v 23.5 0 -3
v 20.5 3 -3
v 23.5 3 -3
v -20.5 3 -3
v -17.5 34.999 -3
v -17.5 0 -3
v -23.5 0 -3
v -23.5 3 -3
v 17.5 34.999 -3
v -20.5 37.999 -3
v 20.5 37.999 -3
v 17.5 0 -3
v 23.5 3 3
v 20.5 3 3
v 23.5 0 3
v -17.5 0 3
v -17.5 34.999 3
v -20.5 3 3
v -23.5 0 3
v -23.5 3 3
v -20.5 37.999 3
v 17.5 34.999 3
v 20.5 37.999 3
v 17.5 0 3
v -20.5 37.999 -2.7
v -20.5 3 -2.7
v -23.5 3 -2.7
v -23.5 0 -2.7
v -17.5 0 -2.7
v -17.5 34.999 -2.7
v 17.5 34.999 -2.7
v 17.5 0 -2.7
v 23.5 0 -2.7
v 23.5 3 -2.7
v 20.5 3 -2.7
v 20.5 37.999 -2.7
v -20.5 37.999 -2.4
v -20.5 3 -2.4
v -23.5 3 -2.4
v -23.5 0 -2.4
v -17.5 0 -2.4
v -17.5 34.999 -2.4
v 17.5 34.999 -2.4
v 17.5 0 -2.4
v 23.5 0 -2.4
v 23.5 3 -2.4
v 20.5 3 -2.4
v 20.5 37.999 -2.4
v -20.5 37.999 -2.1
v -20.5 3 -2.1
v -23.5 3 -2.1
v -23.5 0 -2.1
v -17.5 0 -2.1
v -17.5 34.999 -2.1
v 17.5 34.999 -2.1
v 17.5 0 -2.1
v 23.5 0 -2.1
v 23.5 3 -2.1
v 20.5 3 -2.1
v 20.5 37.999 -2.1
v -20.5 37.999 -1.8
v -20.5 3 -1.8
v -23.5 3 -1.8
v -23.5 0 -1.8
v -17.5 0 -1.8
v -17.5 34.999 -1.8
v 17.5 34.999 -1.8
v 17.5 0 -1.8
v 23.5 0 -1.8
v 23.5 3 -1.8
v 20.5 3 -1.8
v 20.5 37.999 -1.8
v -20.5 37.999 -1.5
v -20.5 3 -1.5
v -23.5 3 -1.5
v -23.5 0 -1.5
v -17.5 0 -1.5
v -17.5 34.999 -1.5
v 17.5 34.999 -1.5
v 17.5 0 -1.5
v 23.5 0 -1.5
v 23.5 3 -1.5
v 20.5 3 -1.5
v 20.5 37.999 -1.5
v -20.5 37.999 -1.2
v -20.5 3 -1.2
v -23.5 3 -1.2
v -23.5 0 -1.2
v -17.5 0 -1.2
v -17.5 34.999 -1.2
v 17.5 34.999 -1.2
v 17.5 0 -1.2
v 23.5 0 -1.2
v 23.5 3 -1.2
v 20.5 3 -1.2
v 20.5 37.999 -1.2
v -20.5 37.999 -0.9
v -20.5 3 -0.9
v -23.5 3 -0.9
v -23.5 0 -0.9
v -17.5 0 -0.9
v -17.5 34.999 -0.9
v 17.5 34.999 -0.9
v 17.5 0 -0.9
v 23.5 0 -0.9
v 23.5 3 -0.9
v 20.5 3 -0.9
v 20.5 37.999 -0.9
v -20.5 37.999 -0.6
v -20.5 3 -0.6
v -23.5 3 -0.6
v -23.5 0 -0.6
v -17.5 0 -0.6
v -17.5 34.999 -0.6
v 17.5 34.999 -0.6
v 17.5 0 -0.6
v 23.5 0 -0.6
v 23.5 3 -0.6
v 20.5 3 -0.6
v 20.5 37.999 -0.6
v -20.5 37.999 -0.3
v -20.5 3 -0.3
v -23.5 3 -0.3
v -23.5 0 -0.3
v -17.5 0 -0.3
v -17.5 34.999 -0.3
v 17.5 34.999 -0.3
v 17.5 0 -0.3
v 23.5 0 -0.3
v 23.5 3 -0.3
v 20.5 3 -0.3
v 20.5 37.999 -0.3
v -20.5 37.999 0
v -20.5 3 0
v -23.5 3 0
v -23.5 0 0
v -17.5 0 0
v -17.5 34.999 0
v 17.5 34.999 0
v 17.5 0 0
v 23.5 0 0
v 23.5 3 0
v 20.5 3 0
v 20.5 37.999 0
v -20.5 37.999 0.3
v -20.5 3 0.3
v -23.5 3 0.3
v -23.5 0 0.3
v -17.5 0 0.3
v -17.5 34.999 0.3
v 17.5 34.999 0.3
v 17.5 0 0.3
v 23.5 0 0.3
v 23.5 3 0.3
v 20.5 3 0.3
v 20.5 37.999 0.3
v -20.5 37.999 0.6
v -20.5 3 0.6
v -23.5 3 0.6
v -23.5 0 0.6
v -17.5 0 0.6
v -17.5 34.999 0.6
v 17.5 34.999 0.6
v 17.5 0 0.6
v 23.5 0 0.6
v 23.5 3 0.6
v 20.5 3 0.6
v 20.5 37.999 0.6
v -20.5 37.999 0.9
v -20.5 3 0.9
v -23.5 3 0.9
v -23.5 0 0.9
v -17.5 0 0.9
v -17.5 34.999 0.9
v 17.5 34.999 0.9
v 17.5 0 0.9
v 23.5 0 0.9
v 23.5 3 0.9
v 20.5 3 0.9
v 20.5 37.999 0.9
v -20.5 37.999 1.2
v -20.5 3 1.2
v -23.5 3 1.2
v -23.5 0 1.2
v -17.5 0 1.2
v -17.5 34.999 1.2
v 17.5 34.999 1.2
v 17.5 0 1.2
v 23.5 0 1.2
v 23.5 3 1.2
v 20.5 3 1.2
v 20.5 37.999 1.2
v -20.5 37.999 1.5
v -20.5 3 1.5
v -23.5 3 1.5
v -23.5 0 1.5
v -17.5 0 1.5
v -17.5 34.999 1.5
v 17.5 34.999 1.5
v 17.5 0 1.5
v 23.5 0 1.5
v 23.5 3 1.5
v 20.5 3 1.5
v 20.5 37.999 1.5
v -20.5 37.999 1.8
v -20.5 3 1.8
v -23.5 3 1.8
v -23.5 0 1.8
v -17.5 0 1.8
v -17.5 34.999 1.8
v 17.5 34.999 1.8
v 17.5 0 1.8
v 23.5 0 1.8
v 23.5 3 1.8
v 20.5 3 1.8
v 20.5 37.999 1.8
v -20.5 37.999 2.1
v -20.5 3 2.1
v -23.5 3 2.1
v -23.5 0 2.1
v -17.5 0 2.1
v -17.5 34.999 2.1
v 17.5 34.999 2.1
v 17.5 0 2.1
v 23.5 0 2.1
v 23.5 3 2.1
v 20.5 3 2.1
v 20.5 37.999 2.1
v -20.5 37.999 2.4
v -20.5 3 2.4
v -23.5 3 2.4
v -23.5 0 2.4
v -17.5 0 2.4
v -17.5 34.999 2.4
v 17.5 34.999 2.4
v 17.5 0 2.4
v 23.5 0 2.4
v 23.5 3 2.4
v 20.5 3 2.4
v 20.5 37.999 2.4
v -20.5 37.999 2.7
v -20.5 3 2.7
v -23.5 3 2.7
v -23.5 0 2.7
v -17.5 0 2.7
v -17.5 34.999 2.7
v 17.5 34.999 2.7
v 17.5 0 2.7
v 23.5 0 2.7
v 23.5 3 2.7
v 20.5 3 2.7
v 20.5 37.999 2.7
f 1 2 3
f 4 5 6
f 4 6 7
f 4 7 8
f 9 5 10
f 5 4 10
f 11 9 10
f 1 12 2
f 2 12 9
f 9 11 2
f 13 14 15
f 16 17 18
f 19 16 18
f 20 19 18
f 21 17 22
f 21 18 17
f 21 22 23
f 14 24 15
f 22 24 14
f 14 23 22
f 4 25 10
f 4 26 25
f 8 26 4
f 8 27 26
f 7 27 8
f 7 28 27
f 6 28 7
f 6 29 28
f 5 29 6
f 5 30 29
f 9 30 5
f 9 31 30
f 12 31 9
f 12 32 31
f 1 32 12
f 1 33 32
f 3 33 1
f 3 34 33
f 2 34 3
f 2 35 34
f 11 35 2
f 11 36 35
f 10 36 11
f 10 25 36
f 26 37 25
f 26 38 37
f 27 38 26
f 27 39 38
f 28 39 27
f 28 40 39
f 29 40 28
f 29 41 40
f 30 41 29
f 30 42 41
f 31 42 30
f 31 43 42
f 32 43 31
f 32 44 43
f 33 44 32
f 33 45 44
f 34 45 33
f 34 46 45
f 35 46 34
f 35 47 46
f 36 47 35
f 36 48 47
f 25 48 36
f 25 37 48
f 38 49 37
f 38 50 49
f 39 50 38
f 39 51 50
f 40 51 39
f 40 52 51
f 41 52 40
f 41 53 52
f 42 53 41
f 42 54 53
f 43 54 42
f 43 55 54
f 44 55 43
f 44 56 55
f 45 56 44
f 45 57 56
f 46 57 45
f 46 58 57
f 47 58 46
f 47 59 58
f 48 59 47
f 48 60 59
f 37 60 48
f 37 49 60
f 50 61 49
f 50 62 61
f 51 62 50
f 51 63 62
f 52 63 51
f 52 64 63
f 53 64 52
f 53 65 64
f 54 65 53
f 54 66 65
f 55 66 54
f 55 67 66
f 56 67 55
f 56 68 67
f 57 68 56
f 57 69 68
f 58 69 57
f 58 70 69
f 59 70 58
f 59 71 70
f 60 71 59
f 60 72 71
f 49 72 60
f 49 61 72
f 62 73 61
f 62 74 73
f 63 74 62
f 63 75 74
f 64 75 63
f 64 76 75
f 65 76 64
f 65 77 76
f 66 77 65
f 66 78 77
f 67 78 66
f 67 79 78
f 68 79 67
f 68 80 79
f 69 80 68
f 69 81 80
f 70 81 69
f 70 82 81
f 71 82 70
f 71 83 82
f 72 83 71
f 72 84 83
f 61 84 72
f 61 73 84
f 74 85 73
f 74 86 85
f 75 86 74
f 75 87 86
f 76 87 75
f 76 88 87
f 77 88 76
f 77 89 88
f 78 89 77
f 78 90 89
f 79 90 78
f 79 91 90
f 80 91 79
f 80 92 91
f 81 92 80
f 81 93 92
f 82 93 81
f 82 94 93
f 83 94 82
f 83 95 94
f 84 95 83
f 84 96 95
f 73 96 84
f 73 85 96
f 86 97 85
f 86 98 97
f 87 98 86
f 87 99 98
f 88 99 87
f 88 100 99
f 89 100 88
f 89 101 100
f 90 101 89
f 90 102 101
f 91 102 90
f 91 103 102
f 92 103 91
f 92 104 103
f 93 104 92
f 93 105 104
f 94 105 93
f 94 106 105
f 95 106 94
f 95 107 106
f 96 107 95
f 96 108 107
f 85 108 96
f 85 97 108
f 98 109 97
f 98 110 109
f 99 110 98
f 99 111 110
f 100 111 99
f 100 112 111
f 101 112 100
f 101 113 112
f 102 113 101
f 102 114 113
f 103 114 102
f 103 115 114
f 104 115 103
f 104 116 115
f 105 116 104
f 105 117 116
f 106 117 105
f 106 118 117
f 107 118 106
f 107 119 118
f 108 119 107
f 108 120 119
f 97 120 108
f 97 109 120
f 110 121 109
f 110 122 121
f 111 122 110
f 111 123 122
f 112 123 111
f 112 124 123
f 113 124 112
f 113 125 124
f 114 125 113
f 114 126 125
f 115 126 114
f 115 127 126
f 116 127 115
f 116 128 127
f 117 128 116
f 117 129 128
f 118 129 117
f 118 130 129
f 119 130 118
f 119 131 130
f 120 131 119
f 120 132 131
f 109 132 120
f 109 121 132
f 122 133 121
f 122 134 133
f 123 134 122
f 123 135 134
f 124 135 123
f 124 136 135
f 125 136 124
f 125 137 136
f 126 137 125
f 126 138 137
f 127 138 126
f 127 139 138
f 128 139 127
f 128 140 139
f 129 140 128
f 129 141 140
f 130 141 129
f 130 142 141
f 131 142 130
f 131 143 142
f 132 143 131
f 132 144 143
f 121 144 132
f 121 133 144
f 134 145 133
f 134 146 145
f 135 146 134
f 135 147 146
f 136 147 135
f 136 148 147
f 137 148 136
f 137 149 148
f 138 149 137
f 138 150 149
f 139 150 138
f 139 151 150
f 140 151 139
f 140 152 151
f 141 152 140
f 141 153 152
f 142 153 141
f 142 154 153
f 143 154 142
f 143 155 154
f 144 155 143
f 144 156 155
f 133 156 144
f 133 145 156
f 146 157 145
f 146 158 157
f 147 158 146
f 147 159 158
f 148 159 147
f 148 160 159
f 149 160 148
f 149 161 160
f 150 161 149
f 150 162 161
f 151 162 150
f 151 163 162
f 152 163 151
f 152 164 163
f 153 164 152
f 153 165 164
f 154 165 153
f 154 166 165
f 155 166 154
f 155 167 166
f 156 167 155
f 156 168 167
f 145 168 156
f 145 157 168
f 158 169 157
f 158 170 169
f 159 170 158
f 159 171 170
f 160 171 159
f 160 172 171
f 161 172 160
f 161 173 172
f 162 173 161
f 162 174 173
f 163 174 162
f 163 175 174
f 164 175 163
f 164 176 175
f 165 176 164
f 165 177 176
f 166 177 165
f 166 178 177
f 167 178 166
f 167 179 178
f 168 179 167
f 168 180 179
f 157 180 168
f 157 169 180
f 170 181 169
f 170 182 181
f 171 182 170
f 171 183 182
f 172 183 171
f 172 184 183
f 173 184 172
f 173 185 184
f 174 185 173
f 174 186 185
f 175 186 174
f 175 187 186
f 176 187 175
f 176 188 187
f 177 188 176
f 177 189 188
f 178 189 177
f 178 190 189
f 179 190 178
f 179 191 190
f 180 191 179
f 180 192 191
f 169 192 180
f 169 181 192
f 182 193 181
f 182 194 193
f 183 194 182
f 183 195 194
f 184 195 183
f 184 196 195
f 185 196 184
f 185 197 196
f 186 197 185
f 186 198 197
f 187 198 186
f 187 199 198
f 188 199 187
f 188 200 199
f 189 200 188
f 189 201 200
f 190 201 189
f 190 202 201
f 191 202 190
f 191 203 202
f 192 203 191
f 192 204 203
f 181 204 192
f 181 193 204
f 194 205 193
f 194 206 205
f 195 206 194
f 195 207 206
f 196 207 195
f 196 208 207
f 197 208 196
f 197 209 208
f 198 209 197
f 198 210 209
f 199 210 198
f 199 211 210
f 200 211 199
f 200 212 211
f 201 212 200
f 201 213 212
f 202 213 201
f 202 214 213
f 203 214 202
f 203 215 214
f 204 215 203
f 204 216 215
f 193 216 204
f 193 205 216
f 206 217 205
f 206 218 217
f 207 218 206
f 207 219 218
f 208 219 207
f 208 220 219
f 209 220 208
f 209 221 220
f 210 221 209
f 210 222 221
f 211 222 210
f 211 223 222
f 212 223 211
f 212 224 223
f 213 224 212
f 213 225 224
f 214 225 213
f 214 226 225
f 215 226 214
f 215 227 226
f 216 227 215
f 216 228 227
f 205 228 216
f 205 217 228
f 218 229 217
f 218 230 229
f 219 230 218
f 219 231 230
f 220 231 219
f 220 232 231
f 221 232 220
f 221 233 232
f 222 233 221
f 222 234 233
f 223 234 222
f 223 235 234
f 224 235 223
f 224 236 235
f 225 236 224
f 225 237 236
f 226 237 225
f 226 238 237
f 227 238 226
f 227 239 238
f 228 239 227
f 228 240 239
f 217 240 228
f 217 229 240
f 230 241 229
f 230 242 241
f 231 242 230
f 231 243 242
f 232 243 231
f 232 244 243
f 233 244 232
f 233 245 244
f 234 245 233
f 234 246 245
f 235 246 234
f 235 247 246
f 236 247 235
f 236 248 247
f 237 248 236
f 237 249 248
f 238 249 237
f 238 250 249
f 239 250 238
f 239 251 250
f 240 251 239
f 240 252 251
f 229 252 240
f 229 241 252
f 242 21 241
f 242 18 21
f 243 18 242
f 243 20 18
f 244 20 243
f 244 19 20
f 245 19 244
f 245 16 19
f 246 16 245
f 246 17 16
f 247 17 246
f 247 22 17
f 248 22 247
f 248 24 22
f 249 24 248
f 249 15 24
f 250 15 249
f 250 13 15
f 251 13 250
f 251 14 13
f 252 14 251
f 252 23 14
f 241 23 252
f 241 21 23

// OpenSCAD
// file: calcs.scad
include <inputs.scad>

// CALCS (everything ends up in [mm])
robot_height = robot_height_in*cu-height_edge*cu*2; // height of the robot
robot_width = robot_width_in*cu-side_edge*cu*2; // width of the robot

base_bottom = base_clearance*cu; // height of the bottom of the base
base_top = base_bottom + base_thickness; // height of the top of the base

storage_size = storage_width*cu; // inside depth of storage area
storage_height = robot_height-base_top; // height of storage container
wire_hole = wire_hole_in*cu; // diameter of hole for wires under storage area

dump_height = dump_height_in*cu; // height that platform edge will raise to dump

shaft_width = robot_width - 2*storage_size - 2*thickness; // inside width of elevator shaft


cut_size = (robot_height-dump_height-base_top)/2+tol; // size of vertical cut for sliding together

shift = shaft_width/2 + thickness/2; // how much the pieces need to be shifted to be put together


wheel_opening_width = wheel_d; // width of opening for wheels on sub base
wheel_opening_depth = wheel_w + wheel_opening_depth_tol; // width of opening for wheels on sub base

drive_height = max(mount_motor_hole_offset,wheel_d/2) + max(mount_motor_hole_offset-mount_motor_hole_offset,wheel_d/2); // height of wheel, motor, and mount

sbase_top_height = drive_height + sbase_thickness; // height of the top of the sub base


false_bottom_height = false_bottom_height_in*cu; // height of false bottom in front

false_opening_height = false_opening_height_in*cu; // height of hole for false bottom


cut_height = base_bottom + false_opening_height - base_thickness; // height at which cuts will meet

bottom_cut_height = cut_height - base_top + tol; // height of bottom cut

top_cut_height = robot_height - dump_height - cut_height + tol; // height of top cut

el_step_height = el_step_height_in*cu; // height of steppers for elevator

// Checking
if (shaft_width < storage_size)
{
    echo("<b>THE STORAGE AREAS WILL BE TOO NARROW!!!!!!!!!!!!!!!!!!!!!!!!!!");
    echo("THIS IS A PROBLEM!!!!!!!!!!!!!!!!!!!!!!!!!!");
    echo("Width: ", shaft_width/cu, "[in]");
}
else
{
    echo("<b>Storage width will be:", shaft_width/cu, "[in]</b>");
}

echo("<b>Corner Size:", (robot_width-shaft_width-2*thickness)/2/cu, "[in]</b>");

// error check for sbase and base
if (sbase_top_height >= base_bottom)
{
    echo("<b>SUB BASE TOO TALL!!!!!!!!!!!!!!!!!!!!!!!!!!</b>");
}
else
{
    echo("<b>Spacer height should be:", (base_bottom - sbase_top_height)/cu, "[in]</b>");
}


echo(shaft_width/cu);
echo(storage_size/cu);
// file: inputs.scad
$fn = 50;
cu = 25.4; // inch -> mm

// INPUTS
thickness = 2; // thickness of the acrylic [mm]
base_thickness = 5; // thickness of the base acrylic [mm]

side_edge = 0.25; // clearance for each side of the robot [in]
height_edge = 0.1; // clearance for top and bottom of the robot [in]

robot_height_in = 11; // overall height of the robot [in]
robot_width_in = 9; // overall width of the robot [in]

base_clearance = 2.65; // clearance of the base to ground [in]

storage_width = 2.65; // inside width of storage container [in]

block_width = 5; // width of jigsaw block [mm]

dump_height_in = 1.75; // height that platform edge will raise to dump [in]

tol = 0.001; // number used to fix rounding? [mm]


sbase_thickness = 0; // thickness of the sub base [mm]

wheel_opening_depth_tol = 5; // extra space for wheel depth [mm]

hole_dist_opposing = 33.98; // distance between middles of opposing mounting holes [mm]

hole_dist_adjacent = 6.36; // distance between middles of adjacent mounting holes [mm]

hole_diameter = 3.26; // diameter of mounting holes [mm]

hole_in_spacing = 5; // distance from edge to middle of first mount holes [mm]


servo_length = 41; // lenght of servo [mm]

servo_width = 21; // width of servo [mm]

servo_depth = 37; // height of servo to top plate [mm]

servo_mount_length = 7; // length of servo hole mount (one side) [mm]

servo_wire_clear_length = 12; // length wires protrude from side [mm]

servo_circle_d = 14.5; // diameter of circular protrusion around spline [mm]

servo_circle_offset = 10; // distance from one side to center of spline [mm]


stepper_depth = 40; // depth of stepper [mm]

stepper_lw = 42; // length/width of stepper [mm]

stepper_shaft_ext = 23; // extension of stepper shaft from face [mm]

s_shaft_d = 5; // stepper shaft diameter [mm]

mount_width = 50; // width of motor mount [mm]

mount_mount_hole_offset_w = 15; // distance from center to mount holes for motor mount [mm]

mount_mount_hole_offset_from_back = 11; // distance from back to first mount holes for motor mount [mm]

mount_mount_hole_differential = 30; // distance from first mount hole to second mount hole for motor mount [mm]

mount_mount_hole_d = 4.2; // diameter of mount mount hole[mm]

mount_motor_hole_offset = 31; // distance from top of mount to center of motor hole [mm]

mount_motor_hole_d = 22.1; // diameter of motor hole in mount [mm]

mount_length = 53.5; // length of motor mount [mm]

mount_depth = 51.5; // depth of motor mount [mm]

mount_thickness = 3; // thickness of metal for mount [mm]

wheel_d = 60; // diameter of wheel [mm]

wheel_w = 31; // width of wheel [mm]

wheel_out = 17; // how far out the shaft the wheel starts [mm]

wedge_tol = 1; // tolerance for edges of wedge [mm]

wedge_angle = 30; // angle of wedge from horizontal [deg]

wedge_thickness = 5; // thickness of wedge [mm]


wire_hole_in = 0.5; // size of hole for wires to motors

wire_tri_edge = 5; // thickness of edge on wiring triangle [mm]

false_bottom_height_in = 3; // height of false bottom in front [in]

bottom_clearance = 3; // clearance for walls on bottom of robot [mm]

false_opening_height_in = 3; // height of hole for false bottom [in]


el_step_height_in = 2; // height of steppers for elevator [in]

el_motor_size = 35; // length of elevator stepper motor [mm]

bracket_thickness = 3; // thickness of bracket for elevator stepper [mm]
// main file
include <inputs.scad>
include <calcs.scad>

module bracket()
{
    linear_extrude(height = 2*bracket_thickness, center = true, convexity = 0, twist = 0, slices = 20, scale = 1.0, $fn = 16)
    {
        // right
        translate(v = [el_motor_size/2, 0, 0])
            square(size = [bracket_thickness, el_motor_size], center = false);
        // left
        translate(v = [-el_motor_size/2-bracket_thickness, 0, 0])
            square(size = [bracket_thickness, el_motor_size], center = false);
        // top
        translate(v = [-el_motor_size/2-bracket_thickness, el_motor_size-tol, 0])
            square(size = [el_motor_size+ 2*bracket_thickness, bracket_thickness], center = false);
        
        // feet
        translate(v = [-el_motor_size/2-2*bracket_thickness, 0, 0])
            square(size = [bracket_thickness, bracket_thickness], center = false);
        translate(v = [+el_motor_size/2+bracket_thickness, 0, 0])
            square(size = [bracket_thickness, bracket_thickness], center = false);
    }
}

bracket();
